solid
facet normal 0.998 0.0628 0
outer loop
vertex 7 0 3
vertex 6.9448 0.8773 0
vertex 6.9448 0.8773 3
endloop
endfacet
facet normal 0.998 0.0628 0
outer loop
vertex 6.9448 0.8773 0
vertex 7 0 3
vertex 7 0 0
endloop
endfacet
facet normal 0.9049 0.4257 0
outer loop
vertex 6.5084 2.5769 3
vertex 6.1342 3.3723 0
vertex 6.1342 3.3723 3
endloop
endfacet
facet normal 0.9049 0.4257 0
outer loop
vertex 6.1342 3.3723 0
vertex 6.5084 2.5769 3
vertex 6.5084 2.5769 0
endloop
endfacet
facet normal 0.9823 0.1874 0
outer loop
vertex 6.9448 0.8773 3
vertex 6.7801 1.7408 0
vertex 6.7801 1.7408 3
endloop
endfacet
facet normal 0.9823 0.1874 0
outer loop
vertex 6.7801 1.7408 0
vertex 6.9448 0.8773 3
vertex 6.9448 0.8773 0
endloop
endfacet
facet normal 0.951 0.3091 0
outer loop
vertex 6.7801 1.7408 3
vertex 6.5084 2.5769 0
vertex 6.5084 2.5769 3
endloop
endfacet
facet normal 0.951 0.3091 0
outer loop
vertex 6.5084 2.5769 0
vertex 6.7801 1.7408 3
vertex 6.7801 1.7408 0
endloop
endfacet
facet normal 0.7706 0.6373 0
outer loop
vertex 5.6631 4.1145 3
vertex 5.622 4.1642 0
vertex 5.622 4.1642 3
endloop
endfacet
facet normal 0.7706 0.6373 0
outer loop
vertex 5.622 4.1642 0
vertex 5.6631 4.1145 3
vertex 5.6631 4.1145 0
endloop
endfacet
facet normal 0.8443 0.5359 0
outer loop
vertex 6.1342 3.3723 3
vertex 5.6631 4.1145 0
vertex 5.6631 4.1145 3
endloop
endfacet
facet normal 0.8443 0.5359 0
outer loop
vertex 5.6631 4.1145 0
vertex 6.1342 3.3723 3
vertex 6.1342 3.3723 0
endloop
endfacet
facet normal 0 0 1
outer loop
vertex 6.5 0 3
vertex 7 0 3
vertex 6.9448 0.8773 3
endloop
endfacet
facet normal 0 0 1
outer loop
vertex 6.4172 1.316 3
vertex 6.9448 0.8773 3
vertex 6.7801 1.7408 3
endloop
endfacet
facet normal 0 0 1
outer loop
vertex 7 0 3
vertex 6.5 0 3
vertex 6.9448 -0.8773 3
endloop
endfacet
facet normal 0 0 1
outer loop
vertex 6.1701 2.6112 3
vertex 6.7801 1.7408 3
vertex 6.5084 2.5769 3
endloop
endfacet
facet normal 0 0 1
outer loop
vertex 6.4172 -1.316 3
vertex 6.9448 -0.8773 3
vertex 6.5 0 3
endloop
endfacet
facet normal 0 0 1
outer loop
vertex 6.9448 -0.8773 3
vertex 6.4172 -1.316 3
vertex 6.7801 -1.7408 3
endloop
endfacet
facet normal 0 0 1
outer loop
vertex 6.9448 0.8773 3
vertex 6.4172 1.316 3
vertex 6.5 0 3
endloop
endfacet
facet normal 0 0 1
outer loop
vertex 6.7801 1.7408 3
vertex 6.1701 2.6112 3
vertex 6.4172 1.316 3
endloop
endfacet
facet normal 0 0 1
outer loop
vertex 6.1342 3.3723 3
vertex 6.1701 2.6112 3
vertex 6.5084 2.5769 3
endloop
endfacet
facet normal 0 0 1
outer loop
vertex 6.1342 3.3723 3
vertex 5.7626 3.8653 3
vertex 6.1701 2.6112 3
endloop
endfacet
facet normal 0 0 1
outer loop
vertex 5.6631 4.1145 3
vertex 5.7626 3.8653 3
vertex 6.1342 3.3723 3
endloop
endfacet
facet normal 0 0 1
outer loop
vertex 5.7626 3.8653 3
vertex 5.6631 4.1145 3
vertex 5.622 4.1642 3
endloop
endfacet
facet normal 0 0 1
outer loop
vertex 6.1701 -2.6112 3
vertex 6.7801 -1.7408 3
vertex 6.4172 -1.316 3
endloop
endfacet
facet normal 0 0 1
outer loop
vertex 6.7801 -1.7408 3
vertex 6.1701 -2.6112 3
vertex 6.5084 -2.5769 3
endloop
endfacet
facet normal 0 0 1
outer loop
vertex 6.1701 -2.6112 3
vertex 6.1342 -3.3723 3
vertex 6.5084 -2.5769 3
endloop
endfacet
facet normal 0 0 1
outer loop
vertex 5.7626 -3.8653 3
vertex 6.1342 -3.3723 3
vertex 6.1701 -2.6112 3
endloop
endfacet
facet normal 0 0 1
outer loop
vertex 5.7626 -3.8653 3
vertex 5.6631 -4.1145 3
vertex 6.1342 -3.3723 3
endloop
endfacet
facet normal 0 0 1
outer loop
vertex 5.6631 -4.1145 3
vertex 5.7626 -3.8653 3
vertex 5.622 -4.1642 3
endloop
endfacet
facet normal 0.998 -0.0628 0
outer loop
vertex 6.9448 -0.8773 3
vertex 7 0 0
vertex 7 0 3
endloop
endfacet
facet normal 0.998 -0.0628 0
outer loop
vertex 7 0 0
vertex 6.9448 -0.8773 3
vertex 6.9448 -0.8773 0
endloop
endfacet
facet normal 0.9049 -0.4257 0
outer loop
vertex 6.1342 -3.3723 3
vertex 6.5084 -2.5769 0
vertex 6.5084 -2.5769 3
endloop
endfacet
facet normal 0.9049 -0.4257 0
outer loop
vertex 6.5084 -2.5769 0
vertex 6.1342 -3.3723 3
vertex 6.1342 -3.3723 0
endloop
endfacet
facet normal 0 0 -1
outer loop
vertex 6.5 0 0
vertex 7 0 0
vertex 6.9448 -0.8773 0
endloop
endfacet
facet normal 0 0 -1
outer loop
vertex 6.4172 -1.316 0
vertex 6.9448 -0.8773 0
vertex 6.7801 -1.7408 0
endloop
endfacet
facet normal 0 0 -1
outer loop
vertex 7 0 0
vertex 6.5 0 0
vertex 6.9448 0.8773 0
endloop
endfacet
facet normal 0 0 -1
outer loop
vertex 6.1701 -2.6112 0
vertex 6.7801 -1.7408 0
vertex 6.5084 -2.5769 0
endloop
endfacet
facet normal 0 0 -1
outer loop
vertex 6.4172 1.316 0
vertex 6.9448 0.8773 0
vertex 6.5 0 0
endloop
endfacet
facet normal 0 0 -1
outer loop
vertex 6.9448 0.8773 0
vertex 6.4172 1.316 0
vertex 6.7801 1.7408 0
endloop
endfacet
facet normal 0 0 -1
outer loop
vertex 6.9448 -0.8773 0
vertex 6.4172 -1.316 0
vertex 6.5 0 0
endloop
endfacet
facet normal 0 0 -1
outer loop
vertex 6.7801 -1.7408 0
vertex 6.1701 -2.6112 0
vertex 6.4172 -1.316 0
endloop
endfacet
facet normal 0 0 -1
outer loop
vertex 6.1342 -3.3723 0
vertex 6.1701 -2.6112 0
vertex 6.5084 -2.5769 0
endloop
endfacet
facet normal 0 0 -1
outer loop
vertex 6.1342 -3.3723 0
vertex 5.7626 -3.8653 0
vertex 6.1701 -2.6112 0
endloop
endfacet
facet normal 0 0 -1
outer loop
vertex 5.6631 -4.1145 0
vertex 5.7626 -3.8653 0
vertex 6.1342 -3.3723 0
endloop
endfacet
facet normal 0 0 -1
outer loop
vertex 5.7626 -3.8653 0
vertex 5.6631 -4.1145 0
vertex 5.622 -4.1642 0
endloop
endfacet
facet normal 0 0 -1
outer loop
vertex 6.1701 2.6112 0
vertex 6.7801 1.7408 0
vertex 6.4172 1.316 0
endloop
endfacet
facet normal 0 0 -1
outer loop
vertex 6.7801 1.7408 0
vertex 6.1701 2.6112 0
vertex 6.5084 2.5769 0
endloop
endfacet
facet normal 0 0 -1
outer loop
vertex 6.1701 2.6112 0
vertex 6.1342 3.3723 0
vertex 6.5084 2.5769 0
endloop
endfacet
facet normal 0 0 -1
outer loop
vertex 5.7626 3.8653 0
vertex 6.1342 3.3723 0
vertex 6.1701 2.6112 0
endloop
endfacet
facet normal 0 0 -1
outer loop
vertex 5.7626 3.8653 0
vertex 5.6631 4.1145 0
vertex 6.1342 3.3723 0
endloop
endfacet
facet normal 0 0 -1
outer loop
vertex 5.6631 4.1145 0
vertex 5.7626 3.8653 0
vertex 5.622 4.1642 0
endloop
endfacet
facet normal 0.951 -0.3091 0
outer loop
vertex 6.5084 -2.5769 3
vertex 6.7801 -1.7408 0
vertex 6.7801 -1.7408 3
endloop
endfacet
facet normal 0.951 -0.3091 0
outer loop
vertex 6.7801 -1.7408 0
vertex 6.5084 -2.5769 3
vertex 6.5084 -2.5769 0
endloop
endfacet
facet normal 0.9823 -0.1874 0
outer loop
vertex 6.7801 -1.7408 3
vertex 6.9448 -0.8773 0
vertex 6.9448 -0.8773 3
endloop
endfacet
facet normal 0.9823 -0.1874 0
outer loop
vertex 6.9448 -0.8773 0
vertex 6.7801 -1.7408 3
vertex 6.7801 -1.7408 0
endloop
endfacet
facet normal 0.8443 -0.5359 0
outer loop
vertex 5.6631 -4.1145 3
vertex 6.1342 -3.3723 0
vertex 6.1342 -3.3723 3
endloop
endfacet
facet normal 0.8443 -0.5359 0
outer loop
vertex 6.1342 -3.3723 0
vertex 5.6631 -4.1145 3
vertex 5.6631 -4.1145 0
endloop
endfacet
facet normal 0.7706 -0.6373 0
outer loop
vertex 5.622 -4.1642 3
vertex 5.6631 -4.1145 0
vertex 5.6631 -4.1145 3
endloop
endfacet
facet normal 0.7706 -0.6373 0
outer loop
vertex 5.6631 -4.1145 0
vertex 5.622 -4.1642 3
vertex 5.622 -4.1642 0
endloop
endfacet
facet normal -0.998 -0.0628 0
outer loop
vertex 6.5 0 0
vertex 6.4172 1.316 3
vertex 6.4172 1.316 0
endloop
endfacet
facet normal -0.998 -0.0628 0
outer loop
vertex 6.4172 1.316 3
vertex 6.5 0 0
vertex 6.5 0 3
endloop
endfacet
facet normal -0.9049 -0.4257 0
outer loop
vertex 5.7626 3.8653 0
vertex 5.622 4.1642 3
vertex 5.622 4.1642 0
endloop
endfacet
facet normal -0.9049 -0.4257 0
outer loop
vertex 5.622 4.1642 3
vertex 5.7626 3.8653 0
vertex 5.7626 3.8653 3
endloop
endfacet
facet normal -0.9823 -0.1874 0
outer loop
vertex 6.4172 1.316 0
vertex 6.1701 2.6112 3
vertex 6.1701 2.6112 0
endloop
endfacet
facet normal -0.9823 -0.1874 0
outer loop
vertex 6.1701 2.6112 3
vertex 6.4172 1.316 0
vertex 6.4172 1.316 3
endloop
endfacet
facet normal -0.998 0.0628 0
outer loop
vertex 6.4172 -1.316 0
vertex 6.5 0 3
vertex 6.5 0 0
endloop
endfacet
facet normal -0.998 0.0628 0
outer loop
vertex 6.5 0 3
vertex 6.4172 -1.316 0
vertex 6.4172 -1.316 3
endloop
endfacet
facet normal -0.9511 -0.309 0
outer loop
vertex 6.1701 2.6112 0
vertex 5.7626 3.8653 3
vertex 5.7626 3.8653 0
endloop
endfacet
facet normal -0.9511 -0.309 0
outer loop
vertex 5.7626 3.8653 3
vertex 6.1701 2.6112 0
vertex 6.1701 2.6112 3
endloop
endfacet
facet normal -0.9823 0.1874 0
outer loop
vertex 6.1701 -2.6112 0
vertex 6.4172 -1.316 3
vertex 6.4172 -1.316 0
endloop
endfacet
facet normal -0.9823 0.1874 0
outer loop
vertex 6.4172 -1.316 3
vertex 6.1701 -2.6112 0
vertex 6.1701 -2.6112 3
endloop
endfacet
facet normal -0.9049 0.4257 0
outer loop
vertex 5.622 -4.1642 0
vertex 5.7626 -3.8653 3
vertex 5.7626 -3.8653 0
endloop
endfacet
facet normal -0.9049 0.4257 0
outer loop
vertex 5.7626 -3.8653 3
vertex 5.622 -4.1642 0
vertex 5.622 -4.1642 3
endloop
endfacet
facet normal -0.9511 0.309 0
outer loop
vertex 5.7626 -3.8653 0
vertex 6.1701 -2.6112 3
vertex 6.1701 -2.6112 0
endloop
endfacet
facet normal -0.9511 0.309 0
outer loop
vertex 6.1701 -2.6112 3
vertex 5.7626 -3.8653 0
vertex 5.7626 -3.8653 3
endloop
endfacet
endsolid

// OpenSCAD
$fn = 50;


difference() {
	union() {
		cylinder(h = 3, r = 7.0000000000);
		translate(v = [-7.0000000000, 0, 0]) {
			cylinder(h = 3, r = 7.0000000000);
		}
	}
	union() {
		cylinder(h = 3, r = 3.2500000000);
		cylinder(h = 3, r = 1.8000000000);
		cylinder(h = 3, r = 1.8000000000);
		cylinder(h = 3, r = 1.8000000000);
		translate(v = [-11.5000000000, 0, 0]) {
			hull() {
				translate(v = [-3.7500000000, 0.0000000000, 0]) {
					cylinder(h = 3, r = 10.5000000000);
				}
				translate(v = [3.7500000000, 0.0000000000, 0]) {
					cylinder(h = 3, r = 10.5000000000);
				}
				translate(v = [-3.7500000000, -0.0000000000, 0]) {
					cylinder(h = 3, r = 10.5000000000);
				}
				translate(v = [3.7500000000, -0.0000000000, 0]) {
					cylinder(h = 3, r = 10.5000000000);
				}
			}
		}
		translate(v = [-4.0000000000, 0, 0.0000000000]) {
			cylinder(h = 3, r = 10.5000000000);
		}
	}
}
